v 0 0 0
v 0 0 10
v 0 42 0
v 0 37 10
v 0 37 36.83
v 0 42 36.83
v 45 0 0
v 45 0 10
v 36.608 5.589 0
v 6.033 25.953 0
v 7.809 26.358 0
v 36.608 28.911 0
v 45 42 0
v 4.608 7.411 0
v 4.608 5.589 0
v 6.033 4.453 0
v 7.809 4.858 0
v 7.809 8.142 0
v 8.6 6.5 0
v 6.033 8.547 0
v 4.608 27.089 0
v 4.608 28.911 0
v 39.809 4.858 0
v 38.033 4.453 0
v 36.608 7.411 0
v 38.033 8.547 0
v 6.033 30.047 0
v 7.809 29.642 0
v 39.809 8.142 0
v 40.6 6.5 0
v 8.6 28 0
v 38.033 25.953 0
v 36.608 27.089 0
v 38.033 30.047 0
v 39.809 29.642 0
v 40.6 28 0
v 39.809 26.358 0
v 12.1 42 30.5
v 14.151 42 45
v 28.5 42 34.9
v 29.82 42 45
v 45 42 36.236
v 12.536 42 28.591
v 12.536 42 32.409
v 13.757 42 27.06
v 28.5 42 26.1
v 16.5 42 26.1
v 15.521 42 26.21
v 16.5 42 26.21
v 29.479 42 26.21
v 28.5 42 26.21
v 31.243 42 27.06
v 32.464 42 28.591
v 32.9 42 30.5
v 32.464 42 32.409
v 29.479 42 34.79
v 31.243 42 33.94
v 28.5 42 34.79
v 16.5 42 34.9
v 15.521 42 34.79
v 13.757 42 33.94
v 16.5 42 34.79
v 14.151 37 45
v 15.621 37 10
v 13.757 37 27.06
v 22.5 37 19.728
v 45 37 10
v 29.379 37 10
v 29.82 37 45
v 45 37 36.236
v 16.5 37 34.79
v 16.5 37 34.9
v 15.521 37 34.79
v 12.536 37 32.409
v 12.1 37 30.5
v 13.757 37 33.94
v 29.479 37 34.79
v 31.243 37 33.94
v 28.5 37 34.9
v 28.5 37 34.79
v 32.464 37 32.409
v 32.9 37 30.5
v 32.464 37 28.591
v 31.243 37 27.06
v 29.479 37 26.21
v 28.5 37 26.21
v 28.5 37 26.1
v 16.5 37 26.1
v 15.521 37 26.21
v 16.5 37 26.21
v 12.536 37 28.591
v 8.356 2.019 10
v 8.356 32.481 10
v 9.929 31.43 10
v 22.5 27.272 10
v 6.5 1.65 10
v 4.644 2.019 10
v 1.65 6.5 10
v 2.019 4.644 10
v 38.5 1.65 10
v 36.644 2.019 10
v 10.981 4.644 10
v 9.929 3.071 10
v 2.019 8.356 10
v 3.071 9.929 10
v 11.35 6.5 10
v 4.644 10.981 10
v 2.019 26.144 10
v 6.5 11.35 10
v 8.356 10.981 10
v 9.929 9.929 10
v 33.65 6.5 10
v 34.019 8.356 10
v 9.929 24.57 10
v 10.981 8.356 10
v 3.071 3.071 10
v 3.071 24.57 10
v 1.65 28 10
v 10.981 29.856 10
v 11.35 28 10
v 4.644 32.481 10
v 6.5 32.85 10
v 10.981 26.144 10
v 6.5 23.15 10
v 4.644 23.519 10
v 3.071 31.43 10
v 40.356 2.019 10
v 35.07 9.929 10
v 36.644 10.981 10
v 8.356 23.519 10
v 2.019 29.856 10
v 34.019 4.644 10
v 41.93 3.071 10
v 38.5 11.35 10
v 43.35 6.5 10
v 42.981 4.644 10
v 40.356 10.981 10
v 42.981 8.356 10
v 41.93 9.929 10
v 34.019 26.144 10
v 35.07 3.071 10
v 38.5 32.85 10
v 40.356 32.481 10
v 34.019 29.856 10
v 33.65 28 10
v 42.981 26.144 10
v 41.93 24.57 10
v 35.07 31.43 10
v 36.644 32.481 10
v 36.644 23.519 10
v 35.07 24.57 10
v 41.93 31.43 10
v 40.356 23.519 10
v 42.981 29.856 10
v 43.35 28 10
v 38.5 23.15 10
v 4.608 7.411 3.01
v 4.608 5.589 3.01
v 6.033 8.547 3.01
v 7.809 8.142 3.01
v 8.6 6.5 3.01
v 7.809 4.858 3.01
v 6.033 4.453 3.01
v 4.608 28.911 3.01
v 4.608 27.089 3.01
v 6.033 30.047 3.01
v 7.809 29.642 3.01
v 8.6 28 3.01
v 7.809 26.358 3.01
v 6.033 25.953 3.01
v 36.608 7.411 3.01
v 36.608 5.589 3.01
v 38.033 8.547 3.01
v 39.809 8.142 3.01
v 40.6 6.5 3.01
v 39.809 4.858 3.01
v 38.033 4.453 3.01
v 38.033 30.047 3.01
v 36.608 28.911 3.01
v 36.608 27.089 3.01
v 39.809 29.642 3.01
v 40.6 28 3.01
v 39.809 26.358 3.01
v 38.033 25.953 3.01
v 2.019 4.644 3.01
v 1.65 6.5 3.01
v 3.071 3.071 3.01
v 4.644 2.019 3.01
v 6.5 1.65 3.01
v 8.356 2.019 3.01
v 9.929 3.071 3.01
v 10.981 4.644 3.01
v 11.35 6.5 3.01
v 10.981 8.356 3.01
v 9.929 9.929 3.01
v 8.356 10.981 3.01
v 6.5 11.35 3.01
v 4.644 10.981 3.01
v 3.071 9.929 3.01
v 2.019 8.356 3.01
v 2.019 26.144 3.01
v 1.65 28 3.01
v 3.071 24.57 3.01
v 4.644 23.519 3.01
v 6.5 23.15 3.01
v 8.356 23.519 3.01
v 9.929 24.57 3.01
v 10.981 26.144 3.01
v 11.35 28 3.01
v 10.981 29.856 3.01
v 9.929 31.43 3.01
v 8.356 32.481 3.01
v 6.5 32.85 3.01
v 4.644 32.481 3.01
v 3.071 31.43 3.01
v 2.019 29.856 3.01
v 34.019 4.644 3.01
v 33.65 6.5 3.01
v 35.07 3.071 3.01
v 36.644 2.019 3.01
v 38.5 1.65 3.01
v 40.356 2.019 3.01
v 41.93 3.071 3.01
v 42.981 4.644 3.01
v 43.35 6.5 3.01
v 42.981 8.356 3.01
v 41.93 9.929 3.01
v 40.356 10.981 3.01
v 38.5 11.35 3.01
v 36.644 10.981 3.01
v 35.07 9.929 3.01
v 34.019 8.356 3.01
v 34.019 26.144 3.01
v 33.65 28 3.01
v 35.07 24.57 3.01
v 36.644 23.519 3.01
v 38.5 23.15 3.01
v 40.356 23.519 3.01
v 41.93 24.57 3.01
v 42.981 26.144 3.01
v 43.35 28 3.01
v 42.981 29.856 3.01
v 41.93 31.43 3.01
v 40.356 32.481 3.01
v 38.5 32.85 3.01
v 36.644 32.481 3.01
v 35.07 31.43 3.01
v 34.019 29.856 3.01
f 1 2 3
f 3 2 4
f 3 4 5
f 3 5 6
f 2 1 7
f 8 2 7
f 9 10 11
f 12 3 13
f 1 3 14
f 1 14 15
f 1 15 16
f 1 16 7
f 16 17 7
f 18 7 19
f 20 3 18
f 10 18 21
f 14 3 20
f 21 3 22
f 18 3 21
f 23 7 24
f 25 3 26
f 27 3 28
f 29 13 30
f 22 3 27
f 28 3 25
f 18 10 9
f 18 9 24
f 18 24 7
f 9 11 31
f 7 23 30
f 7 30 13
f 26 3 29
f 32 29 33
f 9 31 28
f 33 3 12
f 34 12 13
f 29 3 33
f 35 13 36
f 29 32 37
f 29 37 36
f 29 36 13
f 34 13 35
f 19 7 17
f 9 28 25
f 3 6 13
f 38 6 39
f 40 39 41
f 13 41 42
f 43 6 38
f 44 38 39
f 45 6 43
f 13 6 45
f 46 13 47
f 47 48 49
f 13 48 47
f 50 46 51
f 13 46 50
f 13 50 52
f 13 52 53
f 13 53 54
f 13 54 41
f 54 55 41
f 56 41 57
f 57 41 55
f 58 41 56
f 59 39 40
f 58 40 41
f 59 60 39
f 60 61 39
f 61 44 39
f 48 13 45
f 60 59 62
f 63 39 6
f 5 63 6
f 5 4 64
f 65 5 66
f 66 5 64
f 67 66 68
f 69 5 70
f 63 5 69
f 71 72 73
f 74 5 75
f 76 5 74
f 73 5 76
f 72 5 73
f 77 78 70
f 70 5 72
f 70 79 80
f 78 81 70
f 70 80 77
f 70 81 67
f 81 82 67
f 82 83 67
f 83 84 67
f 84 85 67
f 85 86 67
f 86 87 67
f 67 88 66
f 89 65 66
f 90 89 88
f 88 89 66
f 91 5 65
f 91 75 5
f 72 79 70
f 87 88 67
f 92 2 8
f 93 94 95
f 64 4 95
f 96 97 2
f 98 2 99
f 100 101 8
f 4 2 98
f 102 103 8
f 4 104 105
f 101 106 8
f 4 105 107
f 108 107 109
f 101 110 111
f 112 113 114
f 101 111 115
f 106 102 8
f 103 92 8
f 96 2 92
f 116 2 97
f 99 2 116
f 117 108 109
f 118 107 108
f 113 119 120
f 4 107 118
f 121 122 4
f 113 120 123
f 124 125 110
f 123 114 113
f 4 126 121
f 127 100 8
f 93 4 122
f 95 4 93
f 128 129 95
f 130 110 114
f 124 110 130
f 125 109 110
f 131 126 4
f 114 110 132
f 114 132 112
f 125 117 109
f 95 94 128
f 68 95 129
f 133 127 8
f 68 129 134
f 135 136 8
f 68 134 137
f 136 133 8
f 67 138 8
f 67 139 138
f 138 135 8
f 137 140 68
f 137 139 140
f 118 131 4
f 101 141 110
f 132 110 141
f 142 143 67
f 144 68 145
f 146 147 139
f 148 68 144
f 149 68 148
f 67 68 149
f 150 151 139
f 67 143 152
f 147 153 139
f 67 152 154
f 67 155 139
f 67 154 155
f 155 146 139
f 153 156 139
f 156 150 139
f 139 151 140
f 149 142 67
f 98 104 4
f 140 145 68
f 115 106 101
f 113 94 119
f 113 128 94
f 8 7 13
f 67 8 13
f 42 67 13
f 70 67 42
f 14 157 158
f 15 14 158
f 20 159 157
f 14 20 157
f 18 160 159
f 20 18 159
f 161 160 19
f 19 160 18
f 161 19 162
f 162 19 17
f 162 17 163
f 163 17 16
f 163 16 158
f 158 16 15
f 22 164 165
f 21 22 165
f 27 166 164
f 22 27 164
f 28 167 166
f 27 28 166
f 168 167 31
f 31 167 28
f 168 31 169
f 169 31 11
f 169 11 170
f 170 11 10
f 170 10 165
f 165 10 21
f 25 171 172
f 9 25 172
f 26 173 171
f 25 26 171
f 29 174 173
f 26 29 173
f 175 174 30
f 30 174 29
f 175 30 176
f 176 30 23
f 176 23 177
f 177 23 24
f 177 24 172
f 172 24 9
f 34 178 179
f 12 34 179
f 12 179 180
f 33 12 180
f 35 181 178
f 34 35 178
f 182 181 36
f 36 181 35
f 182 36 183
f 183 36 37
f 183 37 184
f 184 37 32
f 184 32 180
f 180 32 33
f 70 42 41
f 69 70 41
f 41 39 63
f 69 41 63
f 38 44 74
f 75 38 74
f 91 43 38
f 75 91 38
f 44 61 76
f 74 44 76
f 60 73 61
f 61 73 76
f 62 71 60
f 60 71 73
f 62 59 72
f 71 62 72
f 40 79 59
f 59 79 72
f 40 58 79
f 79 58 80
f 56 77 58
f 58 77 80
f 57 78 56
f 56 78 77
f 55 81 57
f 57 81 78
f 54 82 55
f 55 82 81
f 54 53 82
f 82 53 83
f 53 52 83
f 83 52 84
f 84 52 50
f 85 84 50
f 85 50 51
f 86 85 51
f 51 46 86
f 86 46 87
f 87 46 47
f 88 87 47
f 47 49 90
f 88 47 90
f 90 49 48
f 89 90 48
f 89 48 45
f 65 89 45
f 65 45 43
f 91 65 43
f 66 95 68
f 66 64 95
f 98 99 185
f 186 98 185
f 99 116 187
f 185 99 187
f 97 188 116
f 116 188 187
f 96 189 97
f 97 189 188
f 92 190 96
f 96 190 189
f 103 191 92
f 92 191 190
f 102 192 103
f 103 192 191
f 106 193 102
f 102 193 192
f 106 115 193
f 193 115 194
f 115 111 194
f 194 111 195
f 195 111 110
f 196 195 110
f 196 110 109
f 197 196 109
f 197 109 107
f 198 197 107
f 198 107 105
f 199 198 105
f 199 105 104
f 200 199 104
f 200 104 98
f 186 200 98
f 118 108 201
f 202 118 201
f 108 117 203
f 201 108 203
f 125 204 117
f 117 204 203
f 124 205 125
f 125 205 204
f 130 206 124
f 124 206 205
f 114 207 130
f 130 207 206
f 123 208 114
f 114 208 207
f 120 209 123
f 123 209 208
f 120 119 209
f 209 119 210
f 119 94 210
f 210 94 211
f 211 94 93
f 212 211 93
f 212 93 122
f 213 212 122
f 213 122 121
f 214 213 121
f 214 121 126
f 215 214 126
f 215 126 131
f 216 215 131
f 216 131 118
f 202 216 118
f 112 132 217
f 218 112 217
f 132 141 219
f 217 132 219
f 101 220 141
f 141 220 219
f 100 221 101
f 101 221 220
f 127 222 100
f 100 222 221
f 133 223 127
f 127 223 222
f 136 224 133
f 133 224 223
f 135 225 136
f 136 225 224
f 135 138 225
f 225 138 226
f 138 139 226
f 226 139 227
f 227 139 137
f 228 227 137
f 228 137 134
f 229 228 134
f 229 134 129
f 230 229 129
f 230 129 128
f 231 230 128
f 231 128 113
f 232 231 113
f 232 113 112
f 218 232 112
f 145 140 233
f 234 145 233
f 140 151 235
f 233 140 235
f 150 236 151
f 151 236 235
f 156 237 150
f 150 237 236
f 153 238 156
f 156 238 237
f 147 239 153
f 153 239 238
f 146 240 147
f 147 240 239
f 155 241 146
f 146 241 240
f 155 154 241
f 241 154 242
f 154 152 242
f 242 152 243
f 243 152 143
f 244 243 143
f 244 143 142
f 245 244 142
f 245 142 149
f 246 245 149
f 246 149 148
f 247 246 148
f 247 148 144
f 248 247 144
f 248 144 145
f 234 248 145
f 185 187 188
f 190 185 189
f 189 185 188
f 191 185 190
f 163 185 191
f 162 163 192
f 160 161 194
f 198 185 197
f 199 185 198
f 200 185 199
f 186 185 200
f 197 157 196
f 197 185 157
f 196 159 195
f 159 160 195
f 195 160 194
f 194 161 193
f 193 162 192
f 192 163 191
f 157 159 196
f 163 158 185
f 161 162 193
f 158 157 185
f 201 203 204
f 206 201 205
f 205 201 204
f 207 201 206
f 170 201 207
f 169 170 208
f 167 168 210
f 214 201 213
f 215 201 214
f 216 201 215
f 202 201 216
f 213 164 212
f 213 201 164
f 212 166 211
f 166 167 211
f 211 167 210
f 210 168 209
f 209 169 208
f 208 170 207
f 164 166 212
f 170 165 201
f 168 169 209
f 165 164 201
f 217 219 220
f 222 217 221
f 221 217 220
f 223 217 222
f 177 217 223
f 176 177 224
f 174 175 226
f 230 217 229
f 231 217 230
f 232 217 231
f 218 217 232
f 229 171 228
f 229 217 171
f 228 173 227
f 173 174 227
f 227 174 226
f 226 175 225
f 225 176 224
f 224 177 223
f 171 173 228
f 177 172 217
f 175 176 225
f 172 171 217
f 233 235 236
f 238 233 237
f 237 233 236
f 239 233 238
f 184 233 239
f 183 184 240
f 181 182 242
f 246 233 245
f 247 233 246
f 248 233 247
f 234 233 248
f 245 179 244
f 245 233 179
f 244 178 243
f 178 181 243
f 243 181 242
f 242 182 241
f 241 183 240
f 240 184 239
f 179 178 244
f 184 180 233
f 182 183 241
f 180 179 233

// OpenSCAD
// file: pulley.scad
// Belt pulley is http://www.thingiverse.com/thing:3104 by GilesBathgate
// GPLV3

include <configuration.scad>

/**
 * @id pulley
 * @name Pulley
 * @category Printed
 * @using 1 m3nut
 * @using 1 m3x10xhex
 */

pulley();

module pulley()
{
	module spur()
	{
		linear_extrude( height = 20 ) polygon( [[-1, -1], [-1, 1], [0.7, 0.7], [0.7, -0.7]], [[0, 1, 2, 3, 0]] );
	}
	
	difference()
	{	 
 		union()
	 	{
	 		//base
	 		rotate_extrude( $fn = 30 )
	 		{
				square( [9, 8] );
				square( [10, 7] );
				translate( [9, 7] ) circle( 1 );
			}
			
			//shaft
			cylinder( r = motor_shaft - 0.2, h = 20, $fn = 8 );
    	
			//spurs
			for( i = [1 : 8] ) rotate( [0, 0, i * ( 360 / 8 )] )
			translate( [5.6, 0, 0] ) spur();
		}
   
		//shaft hole
		translate( [0, 0,- 1] ) polyhole( motor_shaft + 0.1, 22 );
    		
 		//captive nut and grub holes
		for( j = [1 : 1] ) rotate( [0, 0, j * ( 360 / 3 )] )
		translate( [0, 20, 4] ) rotate( [90, 0, 0] )
		union()
		{
			//entrance
			translate( [0, -3, 15] ) cube( [m3_nut_diameter + 0.5, 5, 3], center = true );
			//nut
			translate( [0, 0, 13.6] ) rotate( [0, 0, 30] ) nut( m3_nut_diameter + 0.5, 3, false );
			//grub hole
			translate( [0, 0, 9] ) cylinder( r = m3_diameter / 2, h = 10, $fn = 15 );
		}
	}
}
// file: functions.scad
// PRUSA Mendel  
// Functions used in many files
// GNU GPL v2
// Josef Průša
// josefprusa@me.com
// prusadjs.cz
// http://www.reprap.org/wiki/Prusa_Mendel
// http://github.com/prusajr/PrusaMendel

module nut(d,h,horizontal=true){
cornerdiameter =  (d / 2) / cos (180 / 6);
cylinder(h = h, r = cornerdiameter, $fn = 6);
if(horizontal){
for(i = [1:6]){
	rotate([0,0,60*i]) translate([-cornerdiameter-0.2,0,0]) rotate([0,0,-45]) cube(size = [2,2,h]);
}}
}

// By nophead
module polyhole(d,h) {
    n = max(round(2 * d),3);
    rotate([0,0,180])
        cylinder(h = h, r = (d / 2) / cos (180 / n), $fn = n);
}

module roundcorner(diameter){
	difference(){
		cube(size = [diameter,diameter,99], center = false);
		translate(v = [diameter, diameter, 0]) cylinder(h = 100, r=diameter, center=true);
	}
}
// file: metric.scad
// PRUSA Mendel  
// Default metric sizes
// GNU GPL v2
// Josef Průša
// josefprusa@me.com
// prusadjs.cz
// http://www.reprap.org/wiki/Prusa_Mendel
// http://github.com/prusajr/PrusaMendel

// DONT CHANGE THIS FILE! ALTER VALUES IN CONFIGURATION.SCAD INSTEAD

// RODS

threaded_rod_diameter = 8;
threaded_rod_diameter_horizontal = 8;
smooth_bar_diameter = 8;
smooth_bar_diameter_horizontal = 8;

// Nuts and bolts

m8_diameter = 8;
m8_nut_diameter = 14.5;

m4_diameter = 4;
m4_nut_diameter = 7.5;

m3_diameter = 3;
m3_nut_diameter = 5;

// Bushing holder

bushing_core_diameter = smooth_bar_diameter;
bushing_material_thickness = 1;

// Motors

motor_shaft = 5.1;
// file: nema.scad
use <configuration.scad>;
use <pulley.scad>;

$fa = 3;   // Minimum angle for circle segments.
$fs = 0.5; // Minimum size for circle segments.

aluminum = [0.9, 0.9, 0.9];
steel = [0.8, 0.8, 0.9];

motor_screw = 23.5; // 15.5 : nema 17 23.5 : nema23
motor_diagonal = sqrt(2 * motor_screw * motor_screw);

module nema(length) {
  color([0.4, 0.4, 0.4]) 
  render() {
    translate([0, -length/2-17, 0])
      intersection() {
      cube([57, length, 57], center=true);
      rotate([0, 45, 0]) cube([73, length, 73], center=true);
    }
    translate([0, -17, 0]) rotate([90, 0, 0])
      cylinder(r=11, h=4, center=true);
  }
  color(steel)
  translate([0, -length/2-7, 0]) rotate([90, 0, 0])
    cylinder(r=3.1175, h=length+21, center=true);
  for (a = [0, 90, 180, 270]) rotate([0, a, 0]) {
    color([0.2, 0.2, 0.2]) translate([motor_screw, 0, motor_screw])
      rotate([90, 0, 0]) {
      translate([0, 0, 10]) cylinder(r=2.55, h=80, center=true); // h = 80: debug :)
      translate([0, 0, 16]) cylinder(r=1.5, h=22, center=true);
    }
    color(steel) translate([motor_screw, -11.8, motor_screw])
      rotate([90, 0, 0]) cylinder(r=5, h=0.5, center=true);
  }
}

nema(51);
// file: configuration.scad
// PRUSA Mendel  
// Configuration file
// GNU GPL v2
// Josef Průša
// josefprusa@me.com
// prusadjs.cz
// http://www.reprap.org/wiki/Prusa_Mendel
// http://github.com/prusajr/PrusaMendel

// PLEASE SELECT ONE OF THE CONFIGURATIONS BELOW
// BY UN-COMMENTING IT

// Uncomment for metric settings
// METRIC METRIC METRIC METRIC METRIC METRIC METRIC METRIC 

include <metric.scad>;

// Uncomment for imperial settings
// IMPERIAL IMPERIAL IMPERIAL IMPERIAL IMPERIAL IMPERIAL IMPERIAL 

//include <sae.scad>;

//thin_wall = 3;
// LM8UU
//linear = false;

// override settings by customizing below
// CUSTOM CUSTOM CUSTOM CUSTOM CUSTOM CUSTOM CUSTOM CUSTOM CUSTOM

threaded_rod_diameter = 8.2;
threaded_rod_diameter_horizontal = 8.2;
smooth_bar_diameter = 8.3;
smooth_bar_diameter_horizontal = 8.3;

// Nuts and bolts

m8_diameter = 8.3;
m8_nut_diameter = 15;

m4_diameter = 4.2;
m4_nut_diameter = 9;

m3_diameter = 3.3;
m3_nut_diameter = 5.8;

///counted stuff
m3_nut_diameter_bigger = ((m3_nut_diameter  / 2) / cos (180 / 6))*2;

// functions 
include <functions.scad>
// main file
// f. beachler
// longevity software d.b.a. terawatt industries

include <configuration.scad>;
use <nema.scad>;

height = 75 - 30;
width = 50 + 8 + 2 * 7 - 37.5;
extension = 11;
rod_offset = 2;
rod_diameter = m8_diameter + 0.5;
rod_spacing = 50;
z_bush_dia = 15 + 1;
mnt_screw_dia = m4_diameter;
mnt_screw_cap_dia = 9.5 + 0.2;

slim_xend_idler_mount(height, width, extension, rod_offset, rod_diameter, rod_spacing, z_bush_dia, mnt_screw_dia, mnt_screw_cap_dia);

module slim_xend_idler_mount(h = height, w = width, e = extension, ro = rod_offset, rd = rod_diameter, rs = rod_spacing, zbd = z_bush_dia, mst = mnt_screw_dia, mcap = mnt_screw_cap_dia) {
	difference() {
		// base + wall
		union() {
			cube([h, w + 7.5, 7 + 3]);
			translate([0, w + 7.5, 0]) rotate([90, 0, 0]) cube([h, 45, 5]);
		}
		// adjustable idler mount
		translate([h / 2 - 6, h + 47 / 2 - 10, 47 / 2 + 7]) rotate([90, 0, 0]) cylinder(r = rd / 2, h = h + 1 + 0.02);
		translate([h / 2 + 6, h + 47 / 2 - 10, 47 / 2 + 7]) rotate([90, 0, 0]) cylinder(r = rd / 2, h = h + 1 + 0.02);
		translate([h / 2 + 6 - 12, h + 47 / 2 - 10, 47 / 2 + 7 - rd / 2]) rotate([90, 0, 0]) cube([12, rd, 25]);
		// base mnt screws
		for (x = [6.5, h - 6.5]) {
			for (y = [6.5, w - 6.5]) {
				translate([x, y, -0.01]) cylinder(r = mst / 2, h = h + 1 + 0.02);
				translate([x, y, 3.01]) cylinder(r = mcap / 2, h = h + 1 + 0.02);
			}
		}
		// top corner cuts
		translate([2.5, 0, 45 + 10]) {
			translate([10, 0.01, 0]) rotate([0, 30, 0]) cube([h, w + e, 7 + 3]);
			translate([-10, 0.01, -h * sin(30)]) rotate([0, -30, 0]) cube([h, w + e, 7 + 3]);
		}
	} 
	// support rib
	difference() {
		translate([h / 2 + 18 / 2, 30, 0]) rotate([-45, 0, 0]) linear_extrude(height = 20, center = false, convexity = 10, twist = 0, slices = 100) polygon( points=[[0,0],[-9,-9],[-18,0]] );
		translate([0, w + 15, 0]) rotate([90, 0, 0]) cube([h, 45, 10]);
	}
}
